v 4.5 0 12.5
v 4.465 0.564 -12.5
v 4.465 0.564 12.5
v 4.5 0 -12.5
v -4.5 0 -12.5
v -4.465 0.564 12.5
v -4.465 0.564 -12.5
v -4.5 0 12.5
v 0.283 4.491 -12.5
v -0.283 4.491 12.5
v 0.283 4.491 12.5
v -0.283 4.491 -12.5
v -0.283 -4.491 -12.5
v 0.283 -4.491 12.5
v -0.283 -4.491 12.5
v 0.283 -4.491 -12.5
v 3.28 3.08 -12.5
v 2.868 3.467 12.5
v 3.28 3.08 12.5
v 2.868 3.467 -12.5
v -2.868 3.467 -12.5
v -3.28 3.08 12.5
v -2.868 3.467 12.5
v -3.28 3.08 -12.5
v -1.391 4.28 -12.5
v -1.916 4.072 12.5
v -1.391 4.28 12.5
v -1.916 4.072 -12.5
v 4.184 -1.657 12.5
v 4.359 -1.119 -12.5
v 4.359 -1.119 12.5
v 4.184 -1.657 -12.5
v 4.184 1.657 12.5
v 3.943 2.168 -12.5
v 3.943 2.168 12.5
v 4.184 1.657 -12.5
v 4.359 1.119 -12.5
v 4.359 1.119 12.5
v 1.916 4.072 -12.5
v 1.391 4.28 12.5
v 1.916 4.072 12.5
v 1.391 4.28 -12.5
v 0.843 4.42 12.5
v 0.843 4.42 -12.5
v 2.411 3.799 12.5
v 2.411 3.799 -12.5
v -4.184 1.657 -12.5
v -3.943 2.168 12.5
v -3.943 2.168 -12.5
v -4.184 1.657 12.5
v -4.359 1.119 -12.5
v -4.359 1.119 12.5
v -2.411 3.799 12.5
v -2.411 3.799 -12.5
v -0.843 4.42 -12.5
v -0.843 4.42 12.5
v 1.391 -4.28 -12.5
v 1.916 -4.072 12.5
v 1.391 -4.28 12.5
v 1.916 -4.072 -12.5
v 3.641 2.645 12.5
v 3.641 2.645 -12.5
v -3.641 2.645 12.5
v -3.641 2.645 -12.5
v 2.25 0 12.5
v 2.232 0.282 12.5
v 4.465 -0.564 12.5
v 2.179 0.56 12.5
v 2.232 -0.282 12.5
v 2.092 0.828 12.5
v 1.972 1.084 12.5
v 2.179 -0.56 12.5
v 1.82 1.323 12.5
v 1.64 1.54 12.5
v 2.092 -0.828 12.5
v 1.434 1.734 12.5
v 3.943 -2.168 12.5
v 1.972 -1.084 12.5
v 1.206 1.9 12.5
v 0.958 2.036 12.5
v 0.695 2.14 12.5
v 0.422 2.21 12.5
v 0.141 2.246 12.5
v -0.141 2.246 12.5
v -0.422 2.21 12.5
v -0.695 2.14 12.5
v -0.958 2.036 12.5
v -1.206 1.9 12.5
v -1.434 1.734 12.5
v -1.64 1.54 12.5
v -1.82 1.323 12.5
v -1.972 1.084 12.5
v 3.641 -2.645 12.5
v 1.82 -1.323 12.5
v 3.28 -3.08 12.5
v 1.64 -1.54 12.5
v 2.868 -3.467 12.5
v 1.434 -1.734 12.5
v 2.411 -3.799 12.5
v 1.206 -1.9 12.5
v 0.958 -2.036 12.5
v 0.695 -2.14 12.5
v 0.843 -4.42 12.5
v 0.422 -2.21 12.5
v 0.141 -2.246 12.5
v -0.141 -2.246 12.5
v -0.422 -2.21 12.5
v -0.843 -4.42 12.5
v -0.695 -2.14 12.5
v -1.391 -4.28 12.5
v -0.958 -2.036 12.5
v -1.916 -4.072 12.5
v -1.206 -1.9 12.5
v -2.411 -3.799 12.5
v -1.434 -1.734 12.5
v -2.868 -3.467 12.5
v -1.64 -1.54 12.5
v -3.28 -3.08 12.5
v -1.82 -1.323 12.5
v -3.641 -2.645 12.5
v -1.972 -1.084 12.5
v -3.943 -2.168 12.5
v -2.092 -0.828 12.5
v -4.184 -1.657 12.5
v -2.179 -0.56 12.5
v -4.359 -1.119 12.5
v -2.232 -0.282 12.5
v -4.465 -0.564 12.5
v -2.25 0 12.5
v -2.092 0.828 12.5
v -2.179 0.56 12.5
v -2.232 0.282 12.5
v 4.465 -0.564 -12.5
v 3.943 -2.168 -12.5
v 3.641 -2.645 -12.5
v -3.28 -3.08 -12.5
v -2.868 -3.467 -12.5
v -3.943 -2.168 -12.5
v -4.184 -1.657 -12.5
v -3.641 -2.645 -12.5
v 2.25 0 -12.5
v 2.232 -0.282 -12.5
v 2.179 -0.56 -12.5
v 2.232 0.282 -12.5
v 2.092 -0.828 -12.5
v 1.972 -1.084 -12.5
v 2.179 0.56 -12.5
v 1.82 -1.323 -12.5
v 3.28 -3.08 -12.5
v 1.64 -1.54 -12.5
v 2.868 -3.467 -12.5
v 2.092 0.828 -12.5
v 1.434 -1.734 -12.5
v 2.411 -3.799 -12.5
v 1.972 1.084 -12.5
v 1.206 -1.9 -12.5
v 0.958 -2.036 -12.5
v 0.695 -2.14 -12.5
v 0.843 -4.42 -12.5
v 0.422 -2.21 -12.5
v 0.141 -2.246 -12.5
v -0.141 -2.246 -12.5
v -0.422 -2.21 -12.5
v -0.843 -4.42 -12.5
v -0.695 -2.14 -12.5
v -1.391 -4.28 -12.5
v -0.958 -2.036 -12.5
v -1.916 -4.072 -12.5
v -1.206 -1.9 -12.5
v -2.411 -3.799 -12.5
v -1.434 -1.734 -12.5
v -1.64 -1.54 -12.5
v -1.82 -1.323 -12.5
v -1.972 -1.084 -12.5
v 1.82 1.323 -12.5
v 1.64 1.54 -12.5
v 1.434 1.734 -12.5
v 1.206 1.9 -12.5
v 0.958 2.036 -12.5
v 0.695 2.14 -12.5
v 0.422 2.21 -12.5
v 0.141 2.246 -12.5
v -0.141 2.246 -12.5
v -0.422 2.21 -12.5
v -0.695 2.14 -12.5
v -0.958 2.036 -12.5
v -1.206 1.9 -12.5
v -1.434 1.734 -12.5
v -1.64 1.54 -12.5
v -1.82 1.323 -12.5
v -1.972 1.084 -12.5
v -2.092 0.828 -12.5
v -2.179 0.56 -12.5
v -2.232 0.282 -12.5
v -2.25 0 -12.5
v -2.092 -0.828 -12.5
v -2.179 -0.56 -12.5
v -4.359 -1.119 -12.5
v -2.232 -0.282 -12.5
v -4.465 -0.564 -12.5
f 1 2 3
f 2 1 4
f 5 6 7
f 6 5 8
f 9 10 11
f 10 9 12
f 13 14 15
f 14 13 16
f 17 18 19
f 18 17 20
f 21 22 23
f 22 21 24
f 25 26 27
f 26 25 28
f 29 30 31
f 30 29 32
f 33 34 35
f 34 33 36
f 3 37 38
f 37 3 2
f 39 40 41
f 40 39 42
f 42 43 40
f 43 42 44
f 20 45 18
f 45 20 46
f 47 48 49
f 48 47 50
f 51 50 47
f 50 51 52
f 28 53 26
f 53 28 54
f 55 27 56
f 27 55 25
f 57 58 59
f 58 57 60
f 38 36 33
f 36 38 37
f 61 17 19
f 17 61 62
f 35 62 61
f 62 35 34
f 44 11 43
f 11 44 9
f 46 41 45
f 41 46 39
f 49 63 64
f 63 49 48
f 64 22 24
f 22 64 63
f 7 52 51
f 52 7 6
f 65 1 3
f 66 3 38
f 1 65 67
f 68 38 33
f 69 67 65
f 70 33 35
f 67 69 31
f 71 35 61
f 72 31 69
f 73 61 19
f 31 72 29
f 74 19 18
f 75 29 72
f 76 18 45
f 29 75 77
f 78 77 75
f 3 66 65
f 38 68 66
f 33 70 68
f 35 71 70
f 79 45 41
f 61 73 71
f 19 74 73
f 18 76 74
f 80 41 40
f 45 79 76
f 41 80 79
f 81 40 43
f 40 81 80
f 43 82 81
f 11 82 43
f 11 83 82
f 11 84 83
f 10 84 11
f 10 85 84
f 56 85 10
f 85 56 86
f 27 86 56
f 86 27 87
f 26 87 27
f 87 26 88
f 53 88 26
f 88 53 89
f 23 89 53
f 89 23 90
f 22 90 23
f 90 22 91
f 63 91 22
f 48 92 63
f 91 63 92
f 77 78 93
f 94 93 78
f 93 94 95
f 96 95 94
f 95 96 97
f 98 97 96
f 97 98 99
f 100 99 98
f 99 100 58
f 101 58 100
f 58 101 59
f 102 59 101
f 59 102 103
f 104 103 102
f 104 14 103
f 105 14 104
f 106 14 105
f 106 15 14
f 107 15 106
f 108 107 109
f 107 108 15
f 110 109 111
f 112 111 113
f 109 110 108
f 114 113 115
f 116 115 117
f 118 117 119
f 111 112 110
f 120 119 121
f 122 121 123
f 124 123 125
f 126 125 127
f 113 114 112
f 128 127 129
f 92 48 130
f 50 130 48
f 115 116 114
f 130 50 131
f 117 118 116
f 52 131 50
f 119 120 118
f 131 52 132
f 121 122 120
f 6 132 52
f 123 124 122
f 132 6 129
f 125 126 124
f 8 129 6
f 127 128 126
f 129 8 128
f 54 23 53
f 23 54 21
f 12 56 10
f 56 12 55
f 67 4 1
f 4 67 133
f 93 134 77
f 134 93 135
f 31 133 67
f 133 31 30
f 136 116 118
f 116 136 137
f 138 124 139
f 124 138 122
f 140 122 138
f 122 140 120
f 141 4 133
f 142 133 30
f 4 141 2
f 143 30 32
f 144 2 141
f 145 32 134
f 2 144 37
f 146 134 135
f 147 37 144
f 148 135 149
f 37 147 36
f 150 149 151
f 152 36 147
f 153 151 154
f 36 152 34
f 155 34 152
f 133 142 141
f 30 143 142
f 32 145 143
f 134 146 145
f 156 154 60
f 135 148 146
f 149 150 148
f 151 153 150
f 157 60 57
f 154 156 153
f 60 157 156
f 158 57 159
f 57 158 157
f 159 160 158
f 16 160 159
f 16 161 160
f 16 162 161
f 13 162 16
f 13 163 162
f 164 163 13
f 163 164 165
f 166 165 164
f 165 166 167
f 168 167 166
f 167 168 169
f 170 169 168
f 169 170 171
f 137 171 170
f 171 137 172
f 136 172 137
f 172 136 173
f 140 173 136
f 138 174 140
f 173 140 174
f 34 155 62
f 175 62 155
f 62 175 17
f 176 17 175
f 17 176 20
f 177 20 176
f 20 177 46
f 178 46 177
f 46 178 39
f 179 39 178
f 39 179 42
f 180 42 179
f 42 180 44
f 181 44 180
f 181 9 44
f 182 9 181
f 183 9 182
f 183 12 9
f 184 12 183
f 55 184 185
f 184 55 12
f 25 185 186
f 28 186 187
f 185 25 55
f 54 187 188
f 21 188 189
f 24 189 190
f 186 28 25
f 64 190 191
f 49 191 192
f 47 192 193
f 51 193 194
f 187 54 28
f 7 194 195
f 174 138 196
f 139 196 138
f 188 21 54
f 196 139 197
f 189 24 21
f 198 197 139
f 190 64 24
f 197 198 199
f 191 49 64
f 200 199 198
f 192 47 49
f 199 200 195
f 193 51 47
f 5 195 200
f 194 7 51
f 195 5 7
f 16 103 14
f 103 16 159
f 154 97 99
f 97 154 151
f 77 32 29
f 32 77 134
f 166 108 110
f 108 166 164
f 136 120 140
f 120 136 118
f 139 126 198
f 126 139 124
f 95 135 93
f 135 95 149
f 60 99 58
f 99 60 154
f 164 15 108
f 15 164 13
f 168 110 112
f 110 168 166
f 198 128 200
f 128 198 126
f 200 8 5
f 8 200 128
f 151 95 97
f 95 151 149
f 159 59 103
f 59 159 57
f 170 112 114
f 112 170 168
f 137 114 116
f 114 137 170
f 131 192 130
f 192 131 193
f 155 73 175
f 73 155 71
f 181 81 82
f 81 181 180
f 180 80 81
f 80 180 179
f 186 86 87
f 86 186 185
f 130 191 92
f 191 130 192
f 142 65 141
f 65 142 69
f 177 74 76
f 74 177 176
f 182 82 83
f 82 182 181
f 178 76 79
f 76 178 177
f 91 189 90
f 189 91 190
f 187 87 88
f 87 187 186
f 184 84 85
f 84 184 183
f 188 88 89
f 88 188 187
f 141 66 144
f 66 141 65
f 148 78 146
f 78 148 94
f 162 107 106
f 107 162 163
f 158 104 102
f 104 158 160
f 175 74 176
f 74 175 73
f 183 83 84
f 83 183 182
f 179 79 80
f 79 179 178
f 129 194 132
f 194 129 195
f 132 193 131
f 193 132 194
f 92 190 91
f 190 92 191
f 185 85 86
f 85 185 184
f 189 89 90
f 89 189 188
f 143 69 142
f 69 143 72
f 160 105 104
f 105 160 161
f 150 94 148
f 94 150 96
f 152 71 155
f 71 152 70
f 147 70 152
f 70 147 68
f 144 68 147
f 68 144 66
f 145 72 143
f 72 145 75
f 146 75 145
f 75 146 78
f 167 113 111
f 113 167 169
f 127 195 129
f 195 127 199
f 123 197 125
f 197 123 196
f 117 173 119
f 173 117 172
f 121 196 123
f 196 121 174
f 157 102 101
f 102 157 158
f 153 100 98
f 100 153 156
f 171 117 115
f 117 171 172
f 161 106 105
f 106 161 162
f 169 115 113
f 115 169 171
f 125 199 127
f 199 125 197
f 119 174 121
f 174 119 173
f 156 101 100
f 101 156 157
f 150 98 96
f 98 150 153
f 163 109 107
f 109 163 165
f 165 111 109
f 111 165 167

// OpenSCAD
$fn = 50;


difference() {
	union() {
		translate(v = [0, 0, -12.5000000000]) {
			cylinder(h = 25, r = 4.5000000000);
		}
	}
	union() {
		translate(v = [0, 0, -100.0000000000]) {
			cylinder(h = 200, r = 2.2500000000);
		}
	}
}
